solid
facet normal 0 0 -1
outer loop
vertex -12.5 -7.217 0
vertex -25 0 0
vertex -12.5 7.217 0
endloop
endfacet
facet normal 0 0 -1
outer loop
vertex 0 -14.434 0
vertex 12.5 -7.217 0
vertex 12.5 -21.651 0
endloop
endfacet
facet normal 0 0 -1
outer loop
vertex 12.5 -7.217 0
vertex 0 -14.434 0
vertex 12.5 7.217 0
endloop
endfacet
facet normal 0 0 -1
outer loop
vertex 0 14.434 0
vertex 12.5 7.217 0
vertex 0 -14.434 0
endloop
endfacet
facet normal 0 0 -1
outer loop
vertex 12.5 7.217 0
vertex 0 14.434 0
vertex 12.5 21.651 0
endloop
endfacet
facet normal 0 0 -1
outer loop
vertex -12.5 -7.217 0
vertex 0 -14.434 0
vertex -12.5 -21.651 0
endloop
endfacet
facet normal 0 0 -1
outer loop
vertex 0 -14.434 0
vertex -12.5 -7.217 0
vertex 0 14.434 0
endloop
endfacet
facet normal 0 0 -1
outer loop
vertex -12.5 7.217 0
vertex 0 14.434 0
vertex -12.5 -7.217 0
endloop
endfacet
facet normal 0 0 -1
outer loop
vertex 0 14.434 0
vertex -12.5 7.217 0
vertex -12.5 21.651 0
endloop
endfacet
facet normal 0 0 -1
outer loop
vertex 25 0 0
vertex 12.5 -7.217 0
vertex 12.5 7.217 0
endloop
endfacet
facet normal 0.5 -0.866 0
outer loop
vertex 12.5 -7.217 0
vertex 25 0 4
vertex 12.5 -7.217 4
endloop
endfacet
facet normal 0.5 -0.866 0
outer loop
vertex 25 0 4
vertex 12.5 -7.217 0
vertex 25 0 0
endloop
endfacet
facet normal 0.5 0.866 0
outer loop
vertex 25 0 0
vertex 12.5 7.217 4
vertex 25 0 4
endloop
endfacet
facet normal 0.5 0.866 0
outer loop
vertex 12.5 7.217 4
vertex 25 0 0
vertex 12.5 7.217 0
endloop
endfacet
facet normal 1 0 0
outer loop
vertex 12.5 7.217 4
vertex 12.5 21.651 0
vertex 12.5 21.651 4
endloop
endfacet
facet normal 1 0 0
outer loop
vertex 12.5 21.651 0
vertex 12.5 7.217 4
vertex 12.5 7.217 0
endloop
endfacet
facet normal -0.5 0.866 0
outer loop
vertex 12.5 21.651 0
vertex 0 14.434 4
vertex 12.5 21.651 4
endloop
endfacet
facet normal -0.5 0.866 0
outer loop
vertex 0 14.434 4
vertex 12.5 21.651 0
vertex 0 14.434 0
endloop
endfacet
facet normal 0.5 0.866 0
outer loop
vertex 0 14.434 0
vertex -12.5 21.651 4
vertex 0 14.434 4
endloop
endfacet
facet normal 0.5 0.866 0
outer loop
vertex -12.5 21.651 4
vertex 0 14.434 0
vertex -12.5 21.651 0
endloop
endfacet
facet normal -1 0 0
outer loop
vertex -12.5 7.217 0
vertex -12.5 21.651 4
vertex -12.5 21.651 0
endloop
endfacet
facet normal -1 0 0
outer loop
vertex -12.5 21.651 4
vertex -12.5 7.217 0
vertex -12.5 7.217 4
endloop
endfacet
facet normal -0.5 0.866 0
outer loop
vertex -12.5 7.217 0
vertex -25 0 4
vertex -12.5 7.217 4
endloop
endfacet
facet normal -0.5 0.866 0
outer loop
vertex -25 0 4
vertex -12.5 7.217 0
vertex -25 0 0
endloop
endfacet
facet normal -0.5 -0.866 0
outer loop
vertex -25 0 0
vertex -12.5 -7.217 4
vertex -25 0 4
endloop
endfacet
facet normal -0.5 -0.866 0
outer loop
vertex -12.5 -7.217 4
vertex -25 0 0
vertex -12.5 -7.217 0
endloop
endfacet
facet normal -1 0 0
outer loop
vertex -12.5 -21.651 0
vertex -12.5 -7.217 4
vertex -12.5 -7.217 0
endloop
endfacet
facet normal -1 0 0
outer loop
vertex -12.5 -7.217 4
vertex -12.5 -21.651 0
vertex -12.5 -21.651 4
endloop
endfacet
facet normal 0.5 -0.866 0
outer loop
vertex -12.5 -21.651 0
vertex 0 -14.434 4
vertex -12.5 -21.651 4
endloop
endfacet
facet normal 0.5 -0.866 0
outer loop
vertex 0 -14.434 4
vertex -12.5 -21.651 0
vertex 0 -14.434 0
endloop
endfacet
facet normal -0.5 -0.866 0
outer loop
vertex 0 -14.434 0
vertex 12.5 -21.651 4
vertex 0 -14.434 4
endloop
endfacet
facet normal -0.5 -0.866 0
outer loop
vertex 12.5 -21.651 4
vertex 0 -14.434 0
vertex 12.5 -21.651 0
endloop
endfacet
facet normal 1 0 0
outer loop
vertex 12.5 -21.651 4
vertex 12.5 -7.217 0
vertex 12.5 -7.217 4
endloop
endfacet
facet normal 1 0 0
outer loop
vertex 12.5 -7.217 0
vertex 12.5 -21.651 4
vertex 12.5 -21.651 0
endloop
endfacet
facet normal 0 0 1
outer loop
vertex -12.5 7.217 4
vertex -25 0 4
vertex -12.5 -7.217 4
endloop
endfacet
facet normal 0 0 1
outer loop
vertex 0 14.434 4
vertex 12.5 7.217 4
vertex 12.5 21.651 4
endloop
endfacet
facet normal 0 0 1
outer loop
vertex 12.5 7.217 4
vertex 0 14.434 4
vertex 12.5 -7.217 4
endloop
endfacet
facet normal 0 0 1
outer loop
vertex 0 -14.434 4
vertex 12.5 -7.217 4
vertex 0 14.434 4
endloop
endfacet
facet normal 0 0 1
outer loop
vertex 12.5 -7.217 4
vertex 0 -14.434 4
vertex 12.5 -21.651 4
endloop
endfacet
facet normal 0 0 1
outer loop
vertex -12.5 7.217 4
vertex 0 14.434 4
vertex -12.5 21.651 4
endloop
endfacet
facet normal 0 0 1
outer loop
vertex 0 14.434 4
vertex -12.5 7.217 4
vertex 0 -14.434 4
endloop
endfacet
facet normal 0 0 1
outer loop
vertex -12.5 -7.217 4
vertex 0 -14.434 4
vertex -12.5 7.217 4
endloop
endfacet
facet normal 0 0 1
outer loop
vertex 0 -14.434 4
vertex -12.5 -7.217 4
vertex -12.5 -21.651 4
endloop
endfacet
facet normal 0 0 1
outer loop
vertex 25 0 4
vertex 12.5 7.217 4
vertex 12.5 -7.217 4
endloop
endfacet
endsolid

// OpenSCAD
// ===== 例題7: 星のオーナメント（自由制作のヒント）=====
// 2つの三角形を重ねて六芒星に。linear_extrudeで厚みをつけます。
// ひも穴つきなので、ひもを通して飾れます。

size = 50;   // 星の大きさ(mm)
$fn  = 40;

difference() {
  linear_extrude(height = 4) {           // あつさ4mm
    union() {
      circle(r = size/2, $fn = 3);                 // 三角形1
      rotate(180) circle(r = size/2, $fn = 3);     // 三角形2（180度回転）
    }
  }
  // ひも穴
  translate([0, size/2 - 3, -1]) cylinder(r = 2.5, h = 6);
}
